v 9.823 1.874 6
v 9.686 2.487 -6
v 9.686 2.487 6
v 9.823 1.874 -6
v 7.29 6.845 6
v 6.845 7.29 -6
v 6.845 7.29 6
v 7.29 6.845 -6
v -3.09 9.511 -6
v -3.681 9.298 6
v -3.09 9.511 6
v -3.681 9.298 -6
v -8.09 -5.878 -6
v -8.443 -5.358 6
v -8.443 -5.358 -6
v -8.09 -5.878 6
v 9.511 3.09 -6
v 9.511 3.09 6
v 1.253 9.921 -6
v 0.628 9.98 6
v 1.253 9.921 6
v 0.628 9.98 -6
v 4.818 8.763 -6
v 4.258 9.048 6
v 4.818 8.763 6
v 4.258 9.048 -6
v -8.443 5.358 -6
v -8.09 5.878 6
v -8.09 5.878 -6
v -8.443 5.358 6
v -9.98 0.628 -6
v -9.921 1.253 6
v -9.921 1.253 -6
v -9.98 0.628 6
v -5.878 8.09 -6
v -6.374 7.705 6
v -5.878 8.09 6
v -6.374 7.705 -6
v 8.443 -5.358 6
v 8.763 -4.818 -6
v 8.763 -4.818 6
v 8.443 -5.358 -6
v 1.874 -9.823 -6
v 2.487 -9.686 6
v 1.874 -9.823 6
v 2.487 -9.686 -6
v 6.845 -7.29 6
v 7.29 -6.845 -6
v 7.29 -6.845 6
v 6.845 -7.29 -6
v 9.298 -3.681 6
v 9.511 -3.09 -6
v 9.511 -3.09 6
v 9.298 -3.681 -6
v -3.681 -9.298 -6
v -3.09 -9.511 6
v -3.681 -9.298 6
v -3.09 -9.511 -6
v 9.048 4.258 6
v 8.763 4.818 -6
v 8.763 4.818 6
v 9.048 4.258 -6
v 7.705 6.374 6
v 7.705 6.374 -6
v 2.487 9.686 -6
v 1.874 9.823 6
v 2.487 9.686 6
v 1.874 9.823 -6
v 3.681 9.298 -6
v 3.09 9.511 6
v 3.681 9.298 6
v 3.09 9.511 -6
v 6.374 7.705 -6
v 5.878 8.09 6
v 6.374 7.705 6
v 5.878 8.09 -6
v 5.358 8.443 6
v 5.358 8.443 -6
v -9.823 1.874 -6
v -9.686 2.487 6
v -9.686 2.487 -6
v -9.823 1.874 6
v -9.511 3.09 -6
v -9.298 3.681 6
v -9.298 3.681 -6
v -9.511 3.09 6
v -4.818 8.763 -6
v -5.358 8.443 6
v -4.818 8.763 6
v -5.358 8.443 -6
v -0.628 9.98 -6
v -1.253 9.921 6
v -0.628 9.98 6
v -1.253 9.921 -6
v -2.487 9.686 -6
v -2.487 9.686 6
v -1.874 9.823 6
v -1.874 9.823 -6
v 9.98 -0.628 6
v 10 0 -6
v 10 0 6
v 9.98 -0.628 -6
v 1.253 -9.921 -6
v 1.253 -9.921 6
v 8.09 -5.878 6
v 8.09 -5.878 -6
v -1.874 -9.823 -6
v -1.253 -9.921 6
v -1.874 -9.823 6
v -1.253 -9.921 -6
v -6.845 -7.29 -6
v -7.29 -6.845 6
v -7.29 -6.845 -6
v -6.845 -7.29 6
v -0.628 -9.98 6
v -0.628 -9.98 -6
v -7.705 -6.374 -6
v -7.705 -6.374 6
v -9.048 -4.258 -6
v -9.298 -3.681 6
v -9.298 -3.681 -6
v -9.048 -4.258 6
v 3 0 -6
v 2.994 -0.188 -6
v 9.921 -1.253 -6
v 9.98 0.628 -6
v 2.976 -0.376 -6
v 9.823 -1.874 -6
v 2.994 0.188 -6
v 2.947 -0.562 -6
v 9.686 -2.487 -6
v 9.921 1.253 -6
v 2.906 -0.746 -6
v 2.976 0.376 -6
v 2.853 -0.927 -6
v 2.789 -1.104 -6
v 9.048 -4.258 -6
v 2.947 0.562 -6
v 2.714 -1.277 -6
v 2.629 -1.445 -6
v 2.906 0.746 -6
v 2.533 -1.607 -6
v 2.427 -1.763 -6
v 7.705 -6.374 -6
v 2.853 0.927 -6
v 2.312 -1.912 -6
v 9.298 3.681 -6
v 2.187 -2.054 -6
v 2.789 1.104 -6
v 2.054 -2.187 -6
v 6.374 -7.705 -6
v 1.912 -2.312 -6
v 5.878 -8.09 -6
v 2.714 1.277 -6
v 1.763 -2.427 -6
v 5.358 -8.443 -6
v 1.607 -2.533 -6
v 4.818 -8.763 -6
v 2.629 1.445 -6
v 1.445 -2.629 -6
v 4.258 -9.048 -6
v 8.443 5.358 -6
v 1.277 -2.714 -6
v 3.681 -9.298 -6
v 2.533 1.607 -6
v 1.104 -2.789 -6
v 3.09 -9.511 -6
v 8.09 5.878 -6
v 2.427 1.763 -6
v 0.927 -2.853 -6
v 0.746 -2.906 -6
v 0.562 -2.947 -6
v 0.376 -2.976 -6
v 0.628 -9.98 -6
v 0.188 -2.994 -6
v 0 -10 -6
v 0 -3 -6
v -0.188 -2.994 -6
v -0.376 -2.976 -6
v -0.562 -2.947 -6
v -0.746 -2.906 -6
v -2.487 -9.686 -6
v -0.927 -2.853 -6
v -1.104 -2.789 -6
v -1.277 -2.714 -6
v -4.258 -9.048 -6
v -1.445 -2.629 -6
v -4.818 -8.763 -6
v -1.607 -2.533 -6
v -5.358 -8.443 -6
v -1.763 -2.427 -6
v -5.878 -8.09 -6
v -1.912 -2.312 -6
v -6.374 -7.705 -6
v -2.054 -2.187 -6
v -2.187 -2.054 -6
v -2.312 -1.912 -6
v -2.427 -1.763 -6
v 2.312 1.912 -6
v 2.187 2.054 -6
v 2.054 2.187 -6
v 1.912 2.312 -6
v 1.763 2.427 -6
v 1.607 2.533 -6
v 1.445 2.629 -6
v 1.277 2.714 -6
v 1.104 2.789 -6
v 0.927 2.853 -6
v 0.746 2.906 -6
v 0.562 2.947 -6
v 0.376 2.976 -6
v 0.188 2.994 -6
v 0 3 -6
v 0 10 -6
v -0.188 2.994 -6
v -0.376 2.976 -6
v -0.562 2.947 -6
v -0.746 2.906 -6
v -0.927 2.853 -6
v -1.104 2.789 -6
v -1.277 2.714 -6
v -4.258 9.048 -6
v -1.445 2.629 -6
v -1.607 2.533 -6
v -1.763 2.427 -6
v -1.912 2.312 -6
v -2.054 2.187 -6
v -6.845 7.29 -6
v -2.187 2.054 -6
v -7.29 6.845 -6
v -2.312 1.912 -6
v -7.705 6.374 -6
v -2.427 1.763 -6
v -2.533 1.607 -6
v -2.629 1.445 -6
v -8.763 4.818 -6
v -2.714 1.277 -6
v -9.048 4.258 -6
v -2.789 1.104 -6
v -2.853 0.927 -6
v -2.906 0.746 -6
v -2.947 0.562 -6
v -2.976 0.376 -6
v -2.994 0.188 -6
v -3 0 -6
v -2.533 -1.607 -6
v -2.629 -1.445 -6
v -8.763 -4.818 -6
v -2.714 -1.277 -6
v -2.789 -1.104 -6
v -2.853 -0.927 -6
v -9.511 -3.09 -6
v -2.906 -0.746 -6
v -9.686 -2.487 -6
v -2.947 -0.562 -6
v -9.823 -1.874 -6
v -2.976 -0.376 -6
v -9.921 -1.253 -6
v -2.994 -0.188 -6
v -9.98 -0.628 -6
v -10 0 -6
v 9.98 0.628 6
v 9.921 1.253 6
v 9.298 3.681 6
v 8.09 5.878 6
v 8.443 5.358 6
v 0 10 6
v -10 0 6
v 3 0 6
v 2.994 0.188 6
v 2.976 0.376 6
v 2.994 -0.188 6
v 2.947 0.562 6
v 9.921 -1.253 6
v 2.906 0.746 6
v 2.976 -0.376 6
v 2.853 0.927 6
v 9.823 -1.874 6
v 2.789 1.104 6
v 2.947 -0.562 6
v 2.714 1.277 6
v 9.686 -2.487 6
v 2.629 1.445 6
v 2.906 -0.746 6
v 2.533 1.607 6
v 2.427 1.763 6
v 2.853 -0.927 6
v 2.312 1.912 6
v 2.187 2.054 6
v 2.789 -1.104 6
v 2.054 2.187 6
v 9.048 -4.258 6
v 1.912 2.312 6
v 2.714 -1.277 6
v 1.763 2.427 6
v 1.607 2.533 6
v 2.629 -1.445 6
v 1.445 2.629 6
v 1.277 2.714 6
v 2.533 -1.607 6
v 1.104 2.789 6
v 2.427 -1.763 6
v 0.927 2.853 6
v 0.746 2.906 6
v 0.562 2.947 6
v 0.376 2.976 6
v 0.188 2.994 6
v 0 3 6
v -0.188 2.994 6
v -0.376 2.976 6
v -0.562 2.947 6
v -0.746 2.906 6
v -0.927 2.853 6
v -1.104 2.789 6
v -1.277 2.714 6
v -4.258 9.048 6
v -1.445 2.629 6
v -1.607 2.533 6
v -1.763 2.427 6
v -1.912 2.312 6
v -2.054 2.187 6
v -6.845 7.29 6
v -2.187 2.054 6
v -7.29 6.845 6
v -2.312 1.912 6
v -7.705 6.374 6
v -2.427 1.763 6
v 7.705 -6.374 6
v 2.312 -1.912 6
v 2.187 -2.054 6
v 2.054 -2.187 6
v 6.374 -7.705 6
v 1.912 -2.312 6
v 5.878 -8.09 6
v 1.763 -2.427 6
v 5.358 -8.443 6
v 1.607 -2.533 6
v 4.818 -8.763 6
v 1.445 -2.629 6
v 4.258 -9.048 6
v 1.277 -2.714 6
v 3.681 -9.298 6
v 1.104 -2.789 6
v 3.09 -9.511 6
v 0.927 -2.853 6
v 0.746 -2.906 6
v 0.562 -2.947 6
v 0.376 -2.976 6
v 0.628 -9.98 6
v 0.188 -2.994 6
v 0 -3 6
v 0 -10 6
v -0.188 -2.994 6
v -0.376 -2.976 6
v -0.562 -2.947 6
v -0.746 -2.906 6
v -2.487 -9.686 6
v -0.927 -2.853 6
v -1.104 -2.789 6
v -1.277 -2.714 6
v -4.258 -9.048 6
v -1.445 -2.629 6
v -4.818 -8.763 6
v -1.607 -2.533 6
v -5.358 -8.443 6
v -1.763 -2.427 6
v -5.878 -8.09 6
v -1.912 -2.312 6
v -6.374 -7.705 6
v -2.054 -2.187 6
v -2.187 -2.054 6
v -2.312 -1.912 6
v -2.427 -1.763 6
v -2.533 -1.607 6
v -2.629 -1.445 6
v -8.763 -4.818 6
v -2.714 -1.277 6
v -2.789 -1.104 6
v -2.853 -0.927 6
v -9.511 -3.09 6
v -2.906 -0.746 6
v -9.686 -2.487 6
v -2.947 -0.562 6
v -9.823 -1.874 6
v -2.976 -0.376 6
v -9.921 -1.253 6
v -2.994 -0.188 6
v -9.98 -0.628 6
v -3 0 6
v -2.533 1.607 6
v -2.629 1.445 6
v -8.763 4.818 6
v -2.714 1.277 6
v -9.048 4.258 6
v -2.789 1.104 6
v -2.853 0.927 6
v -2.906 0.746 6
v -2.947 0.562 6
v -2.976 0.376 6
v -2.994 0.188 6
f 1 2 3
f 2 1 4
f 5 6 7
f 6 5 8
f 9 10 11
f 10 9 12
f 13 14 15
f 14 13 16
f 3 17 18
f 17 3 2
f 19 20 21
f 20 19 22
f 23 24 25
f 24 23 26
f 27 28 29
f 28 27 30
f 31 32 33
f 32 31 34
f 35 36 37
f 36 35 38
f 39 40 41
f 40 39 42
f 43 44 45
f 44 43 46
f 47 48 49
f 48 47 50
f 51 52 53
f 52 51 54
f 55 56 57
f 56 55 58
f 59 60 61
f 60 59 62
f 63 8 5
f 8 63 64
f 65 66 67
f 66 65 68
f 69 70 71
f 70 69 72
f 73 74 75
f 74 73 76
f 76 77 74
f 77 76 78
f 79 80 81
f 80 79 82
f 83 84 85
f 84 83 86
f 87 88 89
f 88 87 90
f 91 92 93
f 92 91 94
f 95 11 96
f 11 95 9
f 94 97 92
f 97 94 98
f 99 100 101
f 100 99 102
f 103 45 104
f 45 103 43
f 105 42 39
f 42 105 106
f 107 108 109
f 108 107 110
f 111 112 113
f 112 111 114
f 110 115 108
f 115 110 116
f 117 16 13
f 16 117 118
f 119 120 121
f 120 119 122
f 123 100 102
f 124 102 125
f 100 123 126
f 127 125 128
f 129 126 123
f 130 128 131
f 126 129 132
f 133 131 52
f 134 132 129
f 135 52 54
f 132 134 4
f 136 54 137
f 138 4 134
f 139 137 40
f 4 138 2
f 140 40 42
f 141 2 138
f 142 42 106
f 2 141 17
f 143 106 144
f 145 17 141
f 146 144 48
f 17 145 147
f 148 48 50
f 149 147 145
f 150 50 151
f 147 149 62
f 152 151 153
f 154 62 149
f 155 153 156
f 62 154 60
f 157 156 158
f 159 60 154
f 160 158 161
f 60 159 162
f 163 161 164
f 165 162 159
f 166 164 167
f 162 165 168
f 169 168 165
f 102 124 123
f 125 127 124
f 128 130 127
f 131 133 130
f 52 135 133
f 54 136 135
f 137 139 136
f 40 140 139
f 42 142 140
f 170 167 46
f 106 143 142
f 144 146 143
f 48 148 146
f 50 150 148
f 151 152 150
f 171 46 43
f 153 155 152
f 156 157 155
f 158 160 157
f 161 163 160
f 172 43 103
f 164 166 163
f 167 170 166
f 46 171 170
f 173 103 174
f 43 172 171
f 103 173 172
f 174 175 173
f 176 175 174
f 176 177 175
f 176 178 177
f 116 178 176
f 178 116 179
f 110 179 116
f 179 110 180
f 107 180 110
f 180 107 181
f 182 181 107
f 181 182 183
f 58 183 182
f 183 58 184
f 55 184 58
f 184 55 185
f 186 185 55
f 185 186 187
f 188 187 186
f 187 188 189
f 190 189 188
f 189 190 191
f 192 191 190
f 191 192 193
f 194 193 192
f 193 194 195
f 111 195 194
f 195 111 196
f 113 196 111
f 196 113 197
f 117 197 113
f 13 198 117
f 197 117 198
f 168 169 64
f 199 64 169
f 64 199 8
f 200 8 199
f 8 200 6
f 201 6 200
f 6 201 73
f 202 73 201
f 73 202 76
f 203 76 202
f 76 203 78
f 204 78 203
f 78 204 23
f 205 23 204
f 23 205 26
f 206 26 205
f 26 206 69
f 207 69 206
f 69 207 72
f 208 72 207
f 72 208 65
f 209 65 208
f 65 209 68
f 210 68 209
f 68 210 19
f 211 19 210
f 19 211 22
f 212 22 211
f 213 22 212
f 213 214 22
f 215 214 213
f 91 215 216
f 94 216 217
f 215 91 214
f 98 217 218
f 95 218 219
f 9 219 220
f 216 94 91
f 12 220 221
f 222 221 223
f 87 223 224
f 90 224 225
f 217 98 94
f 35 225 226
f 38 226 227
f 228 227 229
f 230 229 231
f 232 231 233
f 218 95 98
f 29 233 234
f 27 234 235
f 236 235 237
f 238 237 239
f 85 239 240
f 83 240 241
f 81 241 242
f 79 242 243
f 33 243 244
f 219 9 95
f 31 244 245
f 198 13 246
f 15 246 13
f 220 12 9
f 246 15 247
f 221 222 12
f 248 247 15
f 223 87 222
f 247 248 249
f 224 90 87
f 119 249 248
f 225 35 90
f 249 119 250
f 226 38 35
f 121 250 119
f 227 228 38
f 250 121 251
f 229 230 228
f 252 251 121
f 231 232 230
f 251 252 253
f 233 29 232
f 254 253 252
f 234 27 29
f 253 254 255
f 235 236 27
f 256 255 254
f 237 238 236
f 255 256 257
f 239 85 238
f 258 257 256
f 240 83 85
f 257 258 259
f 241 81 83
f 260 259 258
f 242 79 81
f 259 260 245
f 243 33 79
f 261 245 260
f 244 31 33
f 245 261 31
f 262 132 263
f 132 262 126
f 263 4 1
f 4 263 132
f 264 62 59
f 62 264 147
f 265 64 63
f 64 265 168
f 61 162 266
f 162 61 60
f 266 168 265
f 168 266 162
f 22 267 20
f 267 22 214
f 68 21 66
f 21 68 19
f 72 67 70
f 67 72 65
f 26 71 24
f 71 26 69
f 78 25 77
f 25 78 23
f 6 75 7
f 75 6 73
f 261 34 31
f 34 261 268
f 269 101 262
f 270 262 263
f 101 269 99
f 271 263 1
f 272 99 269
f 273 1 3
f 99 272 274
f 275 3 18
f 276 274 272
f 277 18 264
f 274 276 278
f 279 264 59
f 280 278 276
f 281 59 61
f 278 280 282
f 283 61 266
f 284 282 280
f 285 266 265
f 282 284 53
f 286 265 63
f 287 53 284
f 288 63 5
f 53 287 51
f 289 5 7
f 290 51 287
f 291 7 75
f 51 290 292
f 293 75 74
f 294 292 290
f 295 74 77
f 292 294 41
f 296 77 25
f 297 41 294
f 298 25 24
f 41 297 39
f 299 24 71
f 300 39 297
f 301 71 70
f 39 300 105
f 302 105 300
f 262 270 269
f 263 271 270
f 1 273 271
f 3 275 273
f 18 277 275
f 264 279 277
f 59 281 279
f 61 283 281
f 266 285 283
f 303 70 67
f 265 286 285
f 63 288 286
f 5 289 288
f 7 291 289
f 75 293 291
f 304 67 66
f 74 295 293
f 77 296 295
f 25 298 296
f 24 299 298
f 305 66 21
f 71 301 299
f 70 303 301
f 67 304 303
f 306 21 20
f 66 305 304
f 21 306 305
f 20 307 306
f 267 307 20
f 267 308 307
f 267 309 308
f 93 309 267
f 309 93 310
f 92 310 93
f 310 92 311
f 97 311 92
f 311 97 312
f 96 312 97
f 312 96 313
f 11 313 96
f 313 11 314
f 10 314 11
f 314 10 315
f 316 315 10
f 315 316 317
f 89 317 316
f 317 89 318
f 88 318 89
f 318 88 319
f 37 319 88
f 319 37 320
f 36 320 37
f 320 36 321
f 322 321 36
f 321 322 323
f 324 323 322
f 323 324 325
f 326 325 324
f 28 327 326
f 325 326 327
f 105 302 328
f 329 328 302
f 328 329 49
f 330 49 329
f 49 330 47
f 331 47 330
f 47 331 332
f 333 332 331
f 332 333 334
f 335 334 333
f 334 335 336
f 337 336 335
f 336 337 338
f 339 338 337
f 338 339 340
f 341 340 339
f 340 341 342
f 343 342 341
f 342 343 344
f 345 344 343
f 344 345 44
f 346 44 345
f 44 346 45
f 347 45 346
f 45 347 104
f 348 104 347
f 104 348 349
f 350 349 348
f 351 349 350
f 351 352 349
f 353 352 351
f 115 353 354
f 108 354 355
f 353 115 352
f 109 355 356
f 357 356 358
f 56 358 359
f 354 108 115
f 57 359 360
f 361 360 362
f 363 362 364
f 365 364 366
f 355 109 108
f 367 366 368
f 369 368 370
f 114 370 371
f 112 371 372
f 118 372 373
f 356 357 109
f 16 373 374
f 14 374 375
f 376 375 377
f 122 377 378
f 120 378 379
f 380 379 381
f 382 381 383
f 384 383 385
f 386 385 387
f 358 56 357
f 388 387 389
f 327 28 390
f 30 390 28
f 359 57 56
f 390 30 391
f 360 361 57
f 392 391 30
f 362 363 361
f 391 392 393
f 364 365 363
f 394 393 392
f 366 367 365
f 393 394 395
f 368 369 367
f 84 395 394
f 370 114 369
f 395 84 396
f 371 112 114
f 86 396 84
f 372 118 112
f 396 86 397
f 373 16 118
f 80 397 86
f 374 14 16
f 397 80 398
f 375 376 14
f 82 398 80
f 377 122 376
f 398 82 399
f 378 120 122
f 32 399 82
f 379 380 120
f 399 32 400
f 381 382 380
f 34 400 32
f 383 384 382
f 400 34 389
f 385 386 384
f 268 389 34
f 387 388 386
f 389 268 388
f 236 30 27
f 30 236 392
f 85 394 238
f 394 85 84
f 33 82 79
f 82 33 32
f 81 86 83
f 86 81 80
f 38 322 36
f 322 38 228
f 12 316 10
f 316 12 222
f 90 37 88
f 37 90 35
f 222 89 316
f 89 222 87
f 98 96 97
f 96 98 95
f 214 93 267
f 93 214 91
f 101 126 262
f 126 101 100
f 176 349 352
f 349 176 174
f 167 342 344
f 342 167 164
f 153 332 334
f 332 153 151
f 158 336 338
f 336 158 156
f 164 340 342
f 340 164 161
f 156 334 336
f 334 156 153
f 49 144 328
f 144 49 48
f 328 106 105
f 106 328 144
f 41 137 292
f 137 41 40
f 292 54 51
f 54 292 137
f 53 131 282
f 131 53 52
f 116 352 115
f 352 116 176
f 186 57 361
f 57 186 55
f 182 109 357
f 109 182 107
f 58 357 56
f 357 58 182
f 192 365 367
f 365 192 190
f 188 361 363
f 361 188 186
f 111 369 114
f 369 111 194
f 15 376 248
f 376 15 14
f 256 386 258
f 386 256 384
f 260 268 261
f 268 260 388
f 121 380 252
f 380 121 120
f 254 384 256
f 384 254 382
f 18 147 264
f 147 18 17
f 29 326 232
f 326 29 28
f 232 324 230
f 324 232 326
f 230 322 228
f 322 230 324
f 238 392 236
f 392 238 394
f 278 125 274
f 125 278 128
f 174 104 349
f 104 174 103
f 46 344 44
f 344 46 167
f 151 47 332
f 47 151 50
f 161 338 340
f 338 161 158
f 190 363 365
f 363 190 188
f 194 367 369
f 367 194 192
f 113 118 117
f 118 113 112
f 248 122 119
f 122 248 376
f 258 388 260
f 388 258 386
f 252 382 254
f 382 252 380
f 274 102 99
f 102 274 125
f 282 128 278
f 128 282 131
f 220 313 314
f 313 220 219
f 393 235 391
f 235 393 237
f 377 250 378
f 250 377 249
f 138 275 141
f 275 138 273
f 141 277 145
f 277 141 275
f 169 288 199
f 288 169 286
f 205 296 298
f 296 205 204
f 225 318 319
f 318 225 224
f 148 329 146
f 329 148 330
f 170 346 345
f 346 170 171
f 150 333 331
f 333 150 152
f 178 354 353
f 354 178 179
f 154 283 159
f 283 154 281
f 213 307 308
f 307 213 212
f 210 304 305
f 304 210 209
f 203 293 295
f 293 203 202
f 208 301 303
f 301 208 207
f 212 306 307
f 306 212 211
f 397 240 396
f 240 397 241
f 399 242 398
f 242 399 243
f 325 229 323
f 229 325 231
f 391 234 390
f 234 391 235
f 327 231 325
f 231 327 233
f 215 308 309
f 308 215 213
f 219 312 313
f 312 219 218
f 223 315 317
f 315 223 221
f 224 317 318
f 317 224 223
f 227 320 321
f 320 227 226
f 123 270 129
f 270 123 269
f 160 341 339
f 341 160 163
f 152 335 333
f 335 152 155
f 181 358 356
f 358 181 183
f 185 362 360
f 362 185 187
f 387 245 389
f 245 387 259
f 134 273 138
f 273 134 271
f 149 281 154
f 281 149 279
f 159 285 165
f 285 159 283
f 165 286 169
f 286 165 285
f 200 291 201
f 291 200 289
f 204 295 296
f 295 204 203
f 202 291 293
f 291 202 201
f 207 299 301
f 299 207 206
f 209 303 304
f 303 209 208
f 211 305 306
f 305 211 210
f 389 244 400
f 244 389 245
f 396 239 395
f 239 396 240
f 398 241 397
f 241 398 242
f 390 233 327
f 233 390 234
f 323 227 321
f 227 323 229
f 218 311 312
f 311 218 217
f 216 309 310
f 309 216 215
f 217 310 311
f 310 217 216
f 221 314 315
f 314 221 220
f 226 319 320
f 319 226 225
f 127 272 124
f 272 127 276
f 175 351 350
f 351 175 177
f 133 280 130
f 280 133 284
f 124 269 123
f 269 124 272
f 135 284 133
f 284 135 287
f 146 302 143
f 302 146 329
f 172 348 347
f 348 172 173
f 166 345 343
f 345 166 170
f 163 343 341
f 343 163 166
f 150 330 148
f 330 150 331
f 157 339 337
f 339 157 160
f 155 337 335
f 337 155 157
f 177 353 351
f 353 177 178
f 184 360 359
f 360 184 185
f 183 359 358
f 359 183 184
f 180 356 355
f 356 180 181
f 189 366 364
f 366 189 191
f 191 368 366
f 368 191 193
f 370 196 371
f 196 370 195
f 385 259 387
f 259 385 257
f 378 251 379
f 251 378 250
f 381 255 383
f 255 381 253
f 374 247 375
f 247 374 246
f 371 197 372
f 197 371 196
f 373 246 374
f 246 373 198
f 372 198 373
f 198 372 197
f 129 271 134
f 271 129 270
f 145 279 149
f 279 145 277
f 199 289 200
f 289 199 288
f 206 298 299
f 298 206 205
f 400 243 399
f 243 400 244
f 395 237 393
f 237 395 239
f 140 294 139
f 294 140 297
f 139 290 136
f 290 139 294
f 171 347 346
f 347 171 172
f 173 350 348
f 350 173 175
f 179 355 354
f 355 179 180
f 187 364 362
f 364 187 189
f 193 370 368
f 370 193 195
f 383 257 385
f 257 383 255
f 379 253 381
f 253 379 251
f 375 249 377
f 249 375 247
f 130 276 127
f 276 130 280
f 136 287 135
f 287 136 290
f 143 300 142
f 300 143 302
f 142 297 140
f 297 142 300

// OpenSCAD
// Cylindrical spacer with 6 mm hole
difference() {
    // Main spacer body
    cylinder(h = 12, d = 20, center = true, $fn = 100);
    
    // Central 6 mm hole
    cylinder(h = 14, d = 6, center = true, $fn = 100);
}
